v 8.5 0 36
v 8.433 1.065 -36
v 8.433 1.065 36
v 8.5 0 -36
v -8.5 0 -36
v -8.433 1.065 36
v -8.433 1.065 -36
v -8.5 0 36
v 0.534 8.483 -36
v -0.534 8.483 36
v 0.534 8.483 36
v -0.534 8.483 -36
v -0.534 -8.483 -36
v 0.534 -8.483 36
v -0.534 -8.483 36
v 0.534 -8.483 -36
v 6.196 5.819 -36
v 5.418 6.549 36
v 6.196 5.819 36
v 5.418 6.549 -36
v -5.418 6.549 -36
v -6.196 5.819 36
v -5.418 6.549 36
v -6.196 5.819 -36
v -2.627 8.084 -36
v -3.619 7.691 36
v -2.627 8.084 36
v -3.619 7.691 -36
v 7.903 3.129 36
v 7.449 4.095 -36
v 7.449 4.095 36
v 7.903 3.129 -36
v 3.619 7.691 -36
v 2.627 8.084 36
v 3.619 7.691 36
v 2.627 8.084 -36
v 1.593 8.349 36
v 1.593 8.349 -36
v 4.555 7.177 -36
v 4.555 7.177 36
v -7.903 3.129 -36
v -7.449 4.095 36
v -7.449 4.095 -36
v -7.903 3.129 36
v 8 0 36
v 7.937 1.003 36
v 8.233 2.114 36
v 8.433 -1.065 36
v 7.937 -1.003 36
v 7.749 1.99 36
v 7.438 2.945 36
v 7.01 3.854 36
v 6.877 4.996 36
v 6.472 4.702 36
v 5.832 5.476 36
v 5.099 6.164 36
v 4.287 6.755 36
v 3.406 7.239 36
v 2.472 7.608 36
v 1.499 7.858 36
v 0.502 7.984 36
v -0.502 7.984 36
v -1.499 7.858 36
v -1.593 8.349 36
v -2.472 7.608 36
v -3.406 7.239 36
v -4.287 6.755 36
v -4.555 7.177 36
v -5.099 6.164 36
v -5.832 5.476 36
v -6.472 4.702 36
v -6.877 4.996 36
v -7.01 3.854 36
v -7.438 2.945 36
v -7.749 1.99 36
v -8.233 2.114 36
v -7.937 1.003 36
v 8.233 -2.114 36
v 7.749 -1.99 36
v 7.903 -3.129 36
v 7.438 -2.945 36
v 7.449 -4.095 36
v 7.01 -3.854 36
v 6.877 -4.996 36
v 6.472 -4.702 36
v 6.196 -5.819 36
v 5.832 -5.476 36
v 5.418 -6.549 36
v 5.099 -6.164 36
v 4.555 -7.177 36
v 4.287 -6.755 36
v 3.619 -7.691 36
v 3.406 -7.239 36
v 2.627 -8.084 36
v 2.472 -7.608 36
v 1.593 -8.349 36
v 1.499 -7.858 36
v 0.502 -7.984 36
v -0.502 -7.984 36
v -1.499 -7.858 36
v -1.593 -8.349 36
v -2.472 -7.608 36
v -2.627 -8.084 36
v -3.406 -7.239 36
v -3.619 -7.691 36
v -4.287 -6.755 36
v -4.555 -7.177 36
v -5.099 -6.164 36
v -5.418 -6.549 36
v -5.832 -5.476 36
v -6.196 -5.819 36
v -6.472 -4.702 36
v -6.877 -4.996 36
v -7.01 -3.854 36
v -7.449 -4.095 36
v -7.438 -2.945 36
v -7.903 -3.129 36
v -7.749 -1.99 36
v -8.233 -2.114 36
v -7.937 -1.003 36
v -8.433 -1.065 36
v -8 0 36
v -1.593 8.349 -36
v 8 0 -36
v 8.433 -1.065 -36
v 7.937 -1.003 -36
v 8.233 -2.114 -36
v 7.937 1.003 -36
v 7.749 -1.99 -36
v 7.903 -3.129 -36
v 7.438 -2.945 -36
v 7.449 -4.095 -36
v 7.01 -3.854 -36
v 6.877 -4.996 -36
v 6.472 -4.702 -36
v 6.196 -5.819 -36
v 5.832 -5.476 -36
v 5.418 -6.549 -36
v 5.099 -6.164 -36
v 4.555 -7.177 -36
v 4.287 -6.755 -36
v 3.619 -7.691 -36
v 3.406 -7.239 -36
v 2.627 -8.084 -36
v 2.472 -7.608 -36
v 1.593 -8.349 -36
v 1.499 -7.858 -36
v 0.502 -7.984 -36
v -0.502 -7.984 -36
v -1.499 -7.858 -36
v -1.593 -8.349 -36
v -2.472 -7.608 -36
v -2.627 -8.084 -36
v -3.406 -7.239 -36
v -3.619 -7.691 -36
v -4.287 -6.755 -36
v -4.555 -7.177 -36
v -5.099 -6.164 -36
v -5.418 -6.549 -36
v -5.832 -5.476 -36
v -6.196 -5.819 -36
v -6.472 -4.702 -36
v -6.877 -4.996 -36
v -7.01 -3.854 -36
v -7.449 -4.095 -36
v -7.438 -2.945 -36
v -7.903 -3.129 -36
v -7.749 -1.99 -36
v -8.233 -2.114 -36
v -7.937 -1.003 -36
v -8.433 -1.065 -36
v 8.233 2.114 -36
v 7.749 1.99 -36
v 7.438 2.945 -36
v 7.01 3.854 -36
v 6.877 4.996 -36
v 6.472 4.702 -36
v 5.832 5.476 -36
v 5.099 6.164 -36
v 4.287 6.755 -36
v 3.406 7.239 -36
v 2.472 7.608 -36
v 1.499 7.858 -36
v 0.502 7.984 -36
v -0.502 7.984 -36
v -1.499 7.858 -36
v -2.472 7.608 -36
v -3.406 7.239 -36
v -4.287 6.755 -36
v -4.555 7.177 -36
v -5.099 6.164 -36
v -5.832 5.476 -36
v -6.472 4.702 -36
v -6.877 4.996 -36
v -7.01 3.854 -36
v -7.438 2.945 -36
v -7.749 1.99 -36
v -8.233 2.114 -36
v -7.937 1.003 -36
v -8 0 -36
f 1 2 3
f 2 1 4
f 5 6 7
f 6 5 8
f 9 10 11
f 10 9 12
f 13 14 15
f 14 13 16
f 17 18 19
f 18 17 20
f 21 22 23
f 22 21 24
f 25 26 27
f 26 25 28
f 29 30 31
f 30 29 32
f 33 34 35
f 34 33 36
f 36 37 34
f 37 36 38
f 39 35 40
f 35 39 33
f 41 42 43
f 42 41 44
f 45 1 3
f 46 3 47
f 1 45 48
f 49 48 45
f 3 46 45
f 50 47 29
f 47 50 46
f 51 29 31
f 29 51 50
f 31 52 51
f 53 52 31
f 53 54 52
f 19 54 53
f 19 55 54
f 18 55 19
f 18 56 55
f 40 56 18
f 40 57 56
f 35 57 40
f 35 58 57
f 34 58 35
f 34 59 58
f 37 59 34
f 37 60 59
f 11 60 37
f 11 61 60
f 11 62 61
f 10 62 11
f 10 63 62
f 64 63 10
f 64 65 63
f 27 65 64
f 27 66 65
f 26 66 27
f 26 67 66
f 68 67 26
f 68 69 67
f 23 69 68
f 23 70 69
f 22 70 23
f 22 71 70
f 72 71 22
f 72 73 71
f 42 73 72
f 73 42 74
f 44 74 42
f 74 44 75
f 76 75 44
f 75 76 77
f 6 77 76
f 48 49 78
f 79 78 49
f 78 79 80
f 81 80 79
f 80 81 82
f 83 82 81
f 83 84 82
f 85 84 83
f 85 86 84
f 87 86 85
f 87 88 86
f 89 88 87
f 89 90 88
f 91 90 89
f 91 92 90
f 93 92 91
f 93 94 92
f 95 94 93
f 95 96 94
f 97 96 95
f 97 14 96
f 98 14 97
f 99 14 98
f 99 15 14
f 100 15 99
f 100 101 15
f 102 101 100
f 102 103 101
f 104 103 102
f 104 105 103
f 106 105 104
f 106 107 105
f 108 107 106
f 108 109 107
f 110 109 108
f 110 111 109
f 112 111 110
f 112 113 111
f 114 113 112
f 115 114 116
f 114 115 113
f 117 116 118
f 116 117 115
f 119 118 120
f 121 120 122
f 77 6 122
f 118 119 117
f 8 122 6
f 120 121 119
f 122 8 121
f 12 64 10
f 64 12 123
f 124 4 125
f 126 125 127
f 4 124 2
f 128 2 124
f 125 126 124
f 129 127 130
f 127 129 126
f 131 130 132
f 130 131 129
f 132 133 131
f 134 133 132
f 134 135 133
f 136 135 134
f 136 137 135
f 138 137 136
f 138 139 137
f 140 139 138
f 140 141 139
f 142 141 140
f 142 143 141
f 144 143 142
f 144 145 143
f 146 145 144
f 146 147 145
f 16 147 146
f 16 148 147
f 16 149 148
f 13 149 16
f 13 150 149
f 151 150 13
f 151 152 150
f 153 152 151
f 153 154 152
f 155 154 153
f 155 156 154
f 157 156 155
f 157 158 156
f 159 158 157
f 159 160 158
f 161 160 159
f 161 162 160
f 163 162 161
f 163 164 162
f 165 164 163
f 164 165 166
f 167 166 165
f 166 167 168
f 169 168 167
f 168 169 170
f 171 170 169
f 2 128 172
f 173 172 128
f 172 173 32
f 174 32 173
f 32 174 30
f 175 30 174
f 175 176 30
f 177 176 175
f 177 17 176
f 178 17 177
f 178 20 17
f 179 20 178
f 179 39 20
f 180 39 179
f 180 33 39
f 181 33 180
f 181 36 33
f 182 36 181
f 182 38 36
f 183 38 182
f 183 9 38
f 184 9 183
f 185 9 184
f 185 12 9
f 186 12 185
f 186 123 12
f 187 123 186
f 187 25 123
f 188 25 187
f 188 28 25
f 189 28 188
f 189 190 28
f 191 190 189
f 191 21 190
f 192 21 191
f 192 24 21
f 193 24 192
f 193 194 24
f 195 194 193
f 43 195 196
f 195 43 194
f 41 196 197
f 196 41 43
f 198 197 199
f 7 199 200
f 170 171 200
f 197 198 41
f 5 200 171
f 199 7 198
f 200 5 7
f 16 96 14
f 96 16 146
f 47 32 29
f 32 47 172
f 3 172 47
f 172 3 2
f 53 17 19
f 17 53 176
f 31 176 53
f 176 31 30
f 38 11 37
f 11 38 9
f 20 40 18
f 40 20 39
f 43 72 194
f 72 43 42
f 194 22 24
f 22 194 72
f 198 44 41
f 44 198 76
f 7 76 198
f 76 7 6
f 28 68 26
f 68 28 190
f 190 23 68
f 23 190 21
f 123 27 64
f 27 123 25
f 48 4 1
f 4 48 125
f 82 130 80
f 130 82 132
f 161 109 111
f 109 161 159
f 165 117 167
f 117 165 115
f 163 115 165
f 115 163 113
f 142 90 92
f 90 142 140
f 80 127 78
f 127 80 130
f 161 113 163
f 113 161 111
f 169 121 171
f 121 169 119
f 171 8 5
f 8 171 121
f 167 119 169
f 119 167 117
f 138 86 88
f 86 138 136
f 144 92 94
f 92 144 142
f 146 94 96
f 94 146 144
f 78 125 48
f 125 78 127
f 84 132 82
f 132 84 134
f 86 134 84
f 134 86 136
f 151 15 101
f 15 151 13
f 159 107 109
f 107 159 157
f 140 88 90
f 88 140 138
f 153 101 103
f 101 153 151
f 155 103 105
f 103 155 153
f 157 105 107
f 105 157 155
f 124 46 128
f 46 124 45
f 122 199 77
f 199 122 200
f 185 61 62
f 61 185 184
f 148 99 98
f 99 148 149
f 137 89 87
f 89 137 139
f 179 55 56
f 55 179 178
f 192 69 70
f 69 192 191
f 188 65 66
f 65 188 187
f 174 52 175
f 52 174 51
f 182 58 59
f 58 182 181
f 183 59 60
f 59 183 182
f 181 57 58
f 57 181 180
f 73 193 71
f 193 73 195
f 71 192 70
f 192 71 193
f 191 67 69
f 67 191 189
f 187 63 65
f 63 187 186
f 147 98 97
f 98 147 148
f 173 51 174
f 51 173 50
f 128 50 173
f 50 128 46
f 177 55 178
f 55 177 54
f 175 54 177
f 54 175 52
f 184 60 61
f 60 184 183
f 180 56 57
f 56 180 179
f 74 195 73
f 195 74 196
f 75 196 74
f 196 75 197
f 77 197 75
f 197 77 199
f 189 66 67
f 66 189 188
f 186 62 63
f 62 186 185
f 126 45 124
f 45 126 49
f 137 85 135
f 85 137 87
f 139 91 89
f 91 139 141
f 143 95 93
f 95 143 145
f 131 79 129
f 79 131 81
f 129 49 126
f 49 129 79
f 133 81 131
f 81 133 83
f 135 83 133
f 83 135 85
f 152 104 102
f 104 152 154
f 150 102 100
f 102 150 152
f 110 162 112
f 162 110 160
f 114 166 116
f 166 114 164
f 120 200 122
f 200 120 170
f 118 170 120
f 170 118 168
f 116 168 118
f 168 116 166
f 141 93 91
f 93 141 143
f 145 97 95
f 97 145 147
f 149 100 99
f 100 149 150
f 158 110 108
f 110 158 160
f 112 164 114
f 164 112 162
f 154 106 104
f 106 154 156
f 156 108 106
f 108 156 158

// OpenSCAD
$fn = 50;


difference() {
	union() {
		translate(v = [0, 0, -36.0000000000]) {
			cylinder(h = 72, r = 8.5000000000);
		}
	}
	union() {
		translate(v = [0, 0, -100.0000000000]) {
			cylinder(h = 200, r = 8);
		}
	}
}
